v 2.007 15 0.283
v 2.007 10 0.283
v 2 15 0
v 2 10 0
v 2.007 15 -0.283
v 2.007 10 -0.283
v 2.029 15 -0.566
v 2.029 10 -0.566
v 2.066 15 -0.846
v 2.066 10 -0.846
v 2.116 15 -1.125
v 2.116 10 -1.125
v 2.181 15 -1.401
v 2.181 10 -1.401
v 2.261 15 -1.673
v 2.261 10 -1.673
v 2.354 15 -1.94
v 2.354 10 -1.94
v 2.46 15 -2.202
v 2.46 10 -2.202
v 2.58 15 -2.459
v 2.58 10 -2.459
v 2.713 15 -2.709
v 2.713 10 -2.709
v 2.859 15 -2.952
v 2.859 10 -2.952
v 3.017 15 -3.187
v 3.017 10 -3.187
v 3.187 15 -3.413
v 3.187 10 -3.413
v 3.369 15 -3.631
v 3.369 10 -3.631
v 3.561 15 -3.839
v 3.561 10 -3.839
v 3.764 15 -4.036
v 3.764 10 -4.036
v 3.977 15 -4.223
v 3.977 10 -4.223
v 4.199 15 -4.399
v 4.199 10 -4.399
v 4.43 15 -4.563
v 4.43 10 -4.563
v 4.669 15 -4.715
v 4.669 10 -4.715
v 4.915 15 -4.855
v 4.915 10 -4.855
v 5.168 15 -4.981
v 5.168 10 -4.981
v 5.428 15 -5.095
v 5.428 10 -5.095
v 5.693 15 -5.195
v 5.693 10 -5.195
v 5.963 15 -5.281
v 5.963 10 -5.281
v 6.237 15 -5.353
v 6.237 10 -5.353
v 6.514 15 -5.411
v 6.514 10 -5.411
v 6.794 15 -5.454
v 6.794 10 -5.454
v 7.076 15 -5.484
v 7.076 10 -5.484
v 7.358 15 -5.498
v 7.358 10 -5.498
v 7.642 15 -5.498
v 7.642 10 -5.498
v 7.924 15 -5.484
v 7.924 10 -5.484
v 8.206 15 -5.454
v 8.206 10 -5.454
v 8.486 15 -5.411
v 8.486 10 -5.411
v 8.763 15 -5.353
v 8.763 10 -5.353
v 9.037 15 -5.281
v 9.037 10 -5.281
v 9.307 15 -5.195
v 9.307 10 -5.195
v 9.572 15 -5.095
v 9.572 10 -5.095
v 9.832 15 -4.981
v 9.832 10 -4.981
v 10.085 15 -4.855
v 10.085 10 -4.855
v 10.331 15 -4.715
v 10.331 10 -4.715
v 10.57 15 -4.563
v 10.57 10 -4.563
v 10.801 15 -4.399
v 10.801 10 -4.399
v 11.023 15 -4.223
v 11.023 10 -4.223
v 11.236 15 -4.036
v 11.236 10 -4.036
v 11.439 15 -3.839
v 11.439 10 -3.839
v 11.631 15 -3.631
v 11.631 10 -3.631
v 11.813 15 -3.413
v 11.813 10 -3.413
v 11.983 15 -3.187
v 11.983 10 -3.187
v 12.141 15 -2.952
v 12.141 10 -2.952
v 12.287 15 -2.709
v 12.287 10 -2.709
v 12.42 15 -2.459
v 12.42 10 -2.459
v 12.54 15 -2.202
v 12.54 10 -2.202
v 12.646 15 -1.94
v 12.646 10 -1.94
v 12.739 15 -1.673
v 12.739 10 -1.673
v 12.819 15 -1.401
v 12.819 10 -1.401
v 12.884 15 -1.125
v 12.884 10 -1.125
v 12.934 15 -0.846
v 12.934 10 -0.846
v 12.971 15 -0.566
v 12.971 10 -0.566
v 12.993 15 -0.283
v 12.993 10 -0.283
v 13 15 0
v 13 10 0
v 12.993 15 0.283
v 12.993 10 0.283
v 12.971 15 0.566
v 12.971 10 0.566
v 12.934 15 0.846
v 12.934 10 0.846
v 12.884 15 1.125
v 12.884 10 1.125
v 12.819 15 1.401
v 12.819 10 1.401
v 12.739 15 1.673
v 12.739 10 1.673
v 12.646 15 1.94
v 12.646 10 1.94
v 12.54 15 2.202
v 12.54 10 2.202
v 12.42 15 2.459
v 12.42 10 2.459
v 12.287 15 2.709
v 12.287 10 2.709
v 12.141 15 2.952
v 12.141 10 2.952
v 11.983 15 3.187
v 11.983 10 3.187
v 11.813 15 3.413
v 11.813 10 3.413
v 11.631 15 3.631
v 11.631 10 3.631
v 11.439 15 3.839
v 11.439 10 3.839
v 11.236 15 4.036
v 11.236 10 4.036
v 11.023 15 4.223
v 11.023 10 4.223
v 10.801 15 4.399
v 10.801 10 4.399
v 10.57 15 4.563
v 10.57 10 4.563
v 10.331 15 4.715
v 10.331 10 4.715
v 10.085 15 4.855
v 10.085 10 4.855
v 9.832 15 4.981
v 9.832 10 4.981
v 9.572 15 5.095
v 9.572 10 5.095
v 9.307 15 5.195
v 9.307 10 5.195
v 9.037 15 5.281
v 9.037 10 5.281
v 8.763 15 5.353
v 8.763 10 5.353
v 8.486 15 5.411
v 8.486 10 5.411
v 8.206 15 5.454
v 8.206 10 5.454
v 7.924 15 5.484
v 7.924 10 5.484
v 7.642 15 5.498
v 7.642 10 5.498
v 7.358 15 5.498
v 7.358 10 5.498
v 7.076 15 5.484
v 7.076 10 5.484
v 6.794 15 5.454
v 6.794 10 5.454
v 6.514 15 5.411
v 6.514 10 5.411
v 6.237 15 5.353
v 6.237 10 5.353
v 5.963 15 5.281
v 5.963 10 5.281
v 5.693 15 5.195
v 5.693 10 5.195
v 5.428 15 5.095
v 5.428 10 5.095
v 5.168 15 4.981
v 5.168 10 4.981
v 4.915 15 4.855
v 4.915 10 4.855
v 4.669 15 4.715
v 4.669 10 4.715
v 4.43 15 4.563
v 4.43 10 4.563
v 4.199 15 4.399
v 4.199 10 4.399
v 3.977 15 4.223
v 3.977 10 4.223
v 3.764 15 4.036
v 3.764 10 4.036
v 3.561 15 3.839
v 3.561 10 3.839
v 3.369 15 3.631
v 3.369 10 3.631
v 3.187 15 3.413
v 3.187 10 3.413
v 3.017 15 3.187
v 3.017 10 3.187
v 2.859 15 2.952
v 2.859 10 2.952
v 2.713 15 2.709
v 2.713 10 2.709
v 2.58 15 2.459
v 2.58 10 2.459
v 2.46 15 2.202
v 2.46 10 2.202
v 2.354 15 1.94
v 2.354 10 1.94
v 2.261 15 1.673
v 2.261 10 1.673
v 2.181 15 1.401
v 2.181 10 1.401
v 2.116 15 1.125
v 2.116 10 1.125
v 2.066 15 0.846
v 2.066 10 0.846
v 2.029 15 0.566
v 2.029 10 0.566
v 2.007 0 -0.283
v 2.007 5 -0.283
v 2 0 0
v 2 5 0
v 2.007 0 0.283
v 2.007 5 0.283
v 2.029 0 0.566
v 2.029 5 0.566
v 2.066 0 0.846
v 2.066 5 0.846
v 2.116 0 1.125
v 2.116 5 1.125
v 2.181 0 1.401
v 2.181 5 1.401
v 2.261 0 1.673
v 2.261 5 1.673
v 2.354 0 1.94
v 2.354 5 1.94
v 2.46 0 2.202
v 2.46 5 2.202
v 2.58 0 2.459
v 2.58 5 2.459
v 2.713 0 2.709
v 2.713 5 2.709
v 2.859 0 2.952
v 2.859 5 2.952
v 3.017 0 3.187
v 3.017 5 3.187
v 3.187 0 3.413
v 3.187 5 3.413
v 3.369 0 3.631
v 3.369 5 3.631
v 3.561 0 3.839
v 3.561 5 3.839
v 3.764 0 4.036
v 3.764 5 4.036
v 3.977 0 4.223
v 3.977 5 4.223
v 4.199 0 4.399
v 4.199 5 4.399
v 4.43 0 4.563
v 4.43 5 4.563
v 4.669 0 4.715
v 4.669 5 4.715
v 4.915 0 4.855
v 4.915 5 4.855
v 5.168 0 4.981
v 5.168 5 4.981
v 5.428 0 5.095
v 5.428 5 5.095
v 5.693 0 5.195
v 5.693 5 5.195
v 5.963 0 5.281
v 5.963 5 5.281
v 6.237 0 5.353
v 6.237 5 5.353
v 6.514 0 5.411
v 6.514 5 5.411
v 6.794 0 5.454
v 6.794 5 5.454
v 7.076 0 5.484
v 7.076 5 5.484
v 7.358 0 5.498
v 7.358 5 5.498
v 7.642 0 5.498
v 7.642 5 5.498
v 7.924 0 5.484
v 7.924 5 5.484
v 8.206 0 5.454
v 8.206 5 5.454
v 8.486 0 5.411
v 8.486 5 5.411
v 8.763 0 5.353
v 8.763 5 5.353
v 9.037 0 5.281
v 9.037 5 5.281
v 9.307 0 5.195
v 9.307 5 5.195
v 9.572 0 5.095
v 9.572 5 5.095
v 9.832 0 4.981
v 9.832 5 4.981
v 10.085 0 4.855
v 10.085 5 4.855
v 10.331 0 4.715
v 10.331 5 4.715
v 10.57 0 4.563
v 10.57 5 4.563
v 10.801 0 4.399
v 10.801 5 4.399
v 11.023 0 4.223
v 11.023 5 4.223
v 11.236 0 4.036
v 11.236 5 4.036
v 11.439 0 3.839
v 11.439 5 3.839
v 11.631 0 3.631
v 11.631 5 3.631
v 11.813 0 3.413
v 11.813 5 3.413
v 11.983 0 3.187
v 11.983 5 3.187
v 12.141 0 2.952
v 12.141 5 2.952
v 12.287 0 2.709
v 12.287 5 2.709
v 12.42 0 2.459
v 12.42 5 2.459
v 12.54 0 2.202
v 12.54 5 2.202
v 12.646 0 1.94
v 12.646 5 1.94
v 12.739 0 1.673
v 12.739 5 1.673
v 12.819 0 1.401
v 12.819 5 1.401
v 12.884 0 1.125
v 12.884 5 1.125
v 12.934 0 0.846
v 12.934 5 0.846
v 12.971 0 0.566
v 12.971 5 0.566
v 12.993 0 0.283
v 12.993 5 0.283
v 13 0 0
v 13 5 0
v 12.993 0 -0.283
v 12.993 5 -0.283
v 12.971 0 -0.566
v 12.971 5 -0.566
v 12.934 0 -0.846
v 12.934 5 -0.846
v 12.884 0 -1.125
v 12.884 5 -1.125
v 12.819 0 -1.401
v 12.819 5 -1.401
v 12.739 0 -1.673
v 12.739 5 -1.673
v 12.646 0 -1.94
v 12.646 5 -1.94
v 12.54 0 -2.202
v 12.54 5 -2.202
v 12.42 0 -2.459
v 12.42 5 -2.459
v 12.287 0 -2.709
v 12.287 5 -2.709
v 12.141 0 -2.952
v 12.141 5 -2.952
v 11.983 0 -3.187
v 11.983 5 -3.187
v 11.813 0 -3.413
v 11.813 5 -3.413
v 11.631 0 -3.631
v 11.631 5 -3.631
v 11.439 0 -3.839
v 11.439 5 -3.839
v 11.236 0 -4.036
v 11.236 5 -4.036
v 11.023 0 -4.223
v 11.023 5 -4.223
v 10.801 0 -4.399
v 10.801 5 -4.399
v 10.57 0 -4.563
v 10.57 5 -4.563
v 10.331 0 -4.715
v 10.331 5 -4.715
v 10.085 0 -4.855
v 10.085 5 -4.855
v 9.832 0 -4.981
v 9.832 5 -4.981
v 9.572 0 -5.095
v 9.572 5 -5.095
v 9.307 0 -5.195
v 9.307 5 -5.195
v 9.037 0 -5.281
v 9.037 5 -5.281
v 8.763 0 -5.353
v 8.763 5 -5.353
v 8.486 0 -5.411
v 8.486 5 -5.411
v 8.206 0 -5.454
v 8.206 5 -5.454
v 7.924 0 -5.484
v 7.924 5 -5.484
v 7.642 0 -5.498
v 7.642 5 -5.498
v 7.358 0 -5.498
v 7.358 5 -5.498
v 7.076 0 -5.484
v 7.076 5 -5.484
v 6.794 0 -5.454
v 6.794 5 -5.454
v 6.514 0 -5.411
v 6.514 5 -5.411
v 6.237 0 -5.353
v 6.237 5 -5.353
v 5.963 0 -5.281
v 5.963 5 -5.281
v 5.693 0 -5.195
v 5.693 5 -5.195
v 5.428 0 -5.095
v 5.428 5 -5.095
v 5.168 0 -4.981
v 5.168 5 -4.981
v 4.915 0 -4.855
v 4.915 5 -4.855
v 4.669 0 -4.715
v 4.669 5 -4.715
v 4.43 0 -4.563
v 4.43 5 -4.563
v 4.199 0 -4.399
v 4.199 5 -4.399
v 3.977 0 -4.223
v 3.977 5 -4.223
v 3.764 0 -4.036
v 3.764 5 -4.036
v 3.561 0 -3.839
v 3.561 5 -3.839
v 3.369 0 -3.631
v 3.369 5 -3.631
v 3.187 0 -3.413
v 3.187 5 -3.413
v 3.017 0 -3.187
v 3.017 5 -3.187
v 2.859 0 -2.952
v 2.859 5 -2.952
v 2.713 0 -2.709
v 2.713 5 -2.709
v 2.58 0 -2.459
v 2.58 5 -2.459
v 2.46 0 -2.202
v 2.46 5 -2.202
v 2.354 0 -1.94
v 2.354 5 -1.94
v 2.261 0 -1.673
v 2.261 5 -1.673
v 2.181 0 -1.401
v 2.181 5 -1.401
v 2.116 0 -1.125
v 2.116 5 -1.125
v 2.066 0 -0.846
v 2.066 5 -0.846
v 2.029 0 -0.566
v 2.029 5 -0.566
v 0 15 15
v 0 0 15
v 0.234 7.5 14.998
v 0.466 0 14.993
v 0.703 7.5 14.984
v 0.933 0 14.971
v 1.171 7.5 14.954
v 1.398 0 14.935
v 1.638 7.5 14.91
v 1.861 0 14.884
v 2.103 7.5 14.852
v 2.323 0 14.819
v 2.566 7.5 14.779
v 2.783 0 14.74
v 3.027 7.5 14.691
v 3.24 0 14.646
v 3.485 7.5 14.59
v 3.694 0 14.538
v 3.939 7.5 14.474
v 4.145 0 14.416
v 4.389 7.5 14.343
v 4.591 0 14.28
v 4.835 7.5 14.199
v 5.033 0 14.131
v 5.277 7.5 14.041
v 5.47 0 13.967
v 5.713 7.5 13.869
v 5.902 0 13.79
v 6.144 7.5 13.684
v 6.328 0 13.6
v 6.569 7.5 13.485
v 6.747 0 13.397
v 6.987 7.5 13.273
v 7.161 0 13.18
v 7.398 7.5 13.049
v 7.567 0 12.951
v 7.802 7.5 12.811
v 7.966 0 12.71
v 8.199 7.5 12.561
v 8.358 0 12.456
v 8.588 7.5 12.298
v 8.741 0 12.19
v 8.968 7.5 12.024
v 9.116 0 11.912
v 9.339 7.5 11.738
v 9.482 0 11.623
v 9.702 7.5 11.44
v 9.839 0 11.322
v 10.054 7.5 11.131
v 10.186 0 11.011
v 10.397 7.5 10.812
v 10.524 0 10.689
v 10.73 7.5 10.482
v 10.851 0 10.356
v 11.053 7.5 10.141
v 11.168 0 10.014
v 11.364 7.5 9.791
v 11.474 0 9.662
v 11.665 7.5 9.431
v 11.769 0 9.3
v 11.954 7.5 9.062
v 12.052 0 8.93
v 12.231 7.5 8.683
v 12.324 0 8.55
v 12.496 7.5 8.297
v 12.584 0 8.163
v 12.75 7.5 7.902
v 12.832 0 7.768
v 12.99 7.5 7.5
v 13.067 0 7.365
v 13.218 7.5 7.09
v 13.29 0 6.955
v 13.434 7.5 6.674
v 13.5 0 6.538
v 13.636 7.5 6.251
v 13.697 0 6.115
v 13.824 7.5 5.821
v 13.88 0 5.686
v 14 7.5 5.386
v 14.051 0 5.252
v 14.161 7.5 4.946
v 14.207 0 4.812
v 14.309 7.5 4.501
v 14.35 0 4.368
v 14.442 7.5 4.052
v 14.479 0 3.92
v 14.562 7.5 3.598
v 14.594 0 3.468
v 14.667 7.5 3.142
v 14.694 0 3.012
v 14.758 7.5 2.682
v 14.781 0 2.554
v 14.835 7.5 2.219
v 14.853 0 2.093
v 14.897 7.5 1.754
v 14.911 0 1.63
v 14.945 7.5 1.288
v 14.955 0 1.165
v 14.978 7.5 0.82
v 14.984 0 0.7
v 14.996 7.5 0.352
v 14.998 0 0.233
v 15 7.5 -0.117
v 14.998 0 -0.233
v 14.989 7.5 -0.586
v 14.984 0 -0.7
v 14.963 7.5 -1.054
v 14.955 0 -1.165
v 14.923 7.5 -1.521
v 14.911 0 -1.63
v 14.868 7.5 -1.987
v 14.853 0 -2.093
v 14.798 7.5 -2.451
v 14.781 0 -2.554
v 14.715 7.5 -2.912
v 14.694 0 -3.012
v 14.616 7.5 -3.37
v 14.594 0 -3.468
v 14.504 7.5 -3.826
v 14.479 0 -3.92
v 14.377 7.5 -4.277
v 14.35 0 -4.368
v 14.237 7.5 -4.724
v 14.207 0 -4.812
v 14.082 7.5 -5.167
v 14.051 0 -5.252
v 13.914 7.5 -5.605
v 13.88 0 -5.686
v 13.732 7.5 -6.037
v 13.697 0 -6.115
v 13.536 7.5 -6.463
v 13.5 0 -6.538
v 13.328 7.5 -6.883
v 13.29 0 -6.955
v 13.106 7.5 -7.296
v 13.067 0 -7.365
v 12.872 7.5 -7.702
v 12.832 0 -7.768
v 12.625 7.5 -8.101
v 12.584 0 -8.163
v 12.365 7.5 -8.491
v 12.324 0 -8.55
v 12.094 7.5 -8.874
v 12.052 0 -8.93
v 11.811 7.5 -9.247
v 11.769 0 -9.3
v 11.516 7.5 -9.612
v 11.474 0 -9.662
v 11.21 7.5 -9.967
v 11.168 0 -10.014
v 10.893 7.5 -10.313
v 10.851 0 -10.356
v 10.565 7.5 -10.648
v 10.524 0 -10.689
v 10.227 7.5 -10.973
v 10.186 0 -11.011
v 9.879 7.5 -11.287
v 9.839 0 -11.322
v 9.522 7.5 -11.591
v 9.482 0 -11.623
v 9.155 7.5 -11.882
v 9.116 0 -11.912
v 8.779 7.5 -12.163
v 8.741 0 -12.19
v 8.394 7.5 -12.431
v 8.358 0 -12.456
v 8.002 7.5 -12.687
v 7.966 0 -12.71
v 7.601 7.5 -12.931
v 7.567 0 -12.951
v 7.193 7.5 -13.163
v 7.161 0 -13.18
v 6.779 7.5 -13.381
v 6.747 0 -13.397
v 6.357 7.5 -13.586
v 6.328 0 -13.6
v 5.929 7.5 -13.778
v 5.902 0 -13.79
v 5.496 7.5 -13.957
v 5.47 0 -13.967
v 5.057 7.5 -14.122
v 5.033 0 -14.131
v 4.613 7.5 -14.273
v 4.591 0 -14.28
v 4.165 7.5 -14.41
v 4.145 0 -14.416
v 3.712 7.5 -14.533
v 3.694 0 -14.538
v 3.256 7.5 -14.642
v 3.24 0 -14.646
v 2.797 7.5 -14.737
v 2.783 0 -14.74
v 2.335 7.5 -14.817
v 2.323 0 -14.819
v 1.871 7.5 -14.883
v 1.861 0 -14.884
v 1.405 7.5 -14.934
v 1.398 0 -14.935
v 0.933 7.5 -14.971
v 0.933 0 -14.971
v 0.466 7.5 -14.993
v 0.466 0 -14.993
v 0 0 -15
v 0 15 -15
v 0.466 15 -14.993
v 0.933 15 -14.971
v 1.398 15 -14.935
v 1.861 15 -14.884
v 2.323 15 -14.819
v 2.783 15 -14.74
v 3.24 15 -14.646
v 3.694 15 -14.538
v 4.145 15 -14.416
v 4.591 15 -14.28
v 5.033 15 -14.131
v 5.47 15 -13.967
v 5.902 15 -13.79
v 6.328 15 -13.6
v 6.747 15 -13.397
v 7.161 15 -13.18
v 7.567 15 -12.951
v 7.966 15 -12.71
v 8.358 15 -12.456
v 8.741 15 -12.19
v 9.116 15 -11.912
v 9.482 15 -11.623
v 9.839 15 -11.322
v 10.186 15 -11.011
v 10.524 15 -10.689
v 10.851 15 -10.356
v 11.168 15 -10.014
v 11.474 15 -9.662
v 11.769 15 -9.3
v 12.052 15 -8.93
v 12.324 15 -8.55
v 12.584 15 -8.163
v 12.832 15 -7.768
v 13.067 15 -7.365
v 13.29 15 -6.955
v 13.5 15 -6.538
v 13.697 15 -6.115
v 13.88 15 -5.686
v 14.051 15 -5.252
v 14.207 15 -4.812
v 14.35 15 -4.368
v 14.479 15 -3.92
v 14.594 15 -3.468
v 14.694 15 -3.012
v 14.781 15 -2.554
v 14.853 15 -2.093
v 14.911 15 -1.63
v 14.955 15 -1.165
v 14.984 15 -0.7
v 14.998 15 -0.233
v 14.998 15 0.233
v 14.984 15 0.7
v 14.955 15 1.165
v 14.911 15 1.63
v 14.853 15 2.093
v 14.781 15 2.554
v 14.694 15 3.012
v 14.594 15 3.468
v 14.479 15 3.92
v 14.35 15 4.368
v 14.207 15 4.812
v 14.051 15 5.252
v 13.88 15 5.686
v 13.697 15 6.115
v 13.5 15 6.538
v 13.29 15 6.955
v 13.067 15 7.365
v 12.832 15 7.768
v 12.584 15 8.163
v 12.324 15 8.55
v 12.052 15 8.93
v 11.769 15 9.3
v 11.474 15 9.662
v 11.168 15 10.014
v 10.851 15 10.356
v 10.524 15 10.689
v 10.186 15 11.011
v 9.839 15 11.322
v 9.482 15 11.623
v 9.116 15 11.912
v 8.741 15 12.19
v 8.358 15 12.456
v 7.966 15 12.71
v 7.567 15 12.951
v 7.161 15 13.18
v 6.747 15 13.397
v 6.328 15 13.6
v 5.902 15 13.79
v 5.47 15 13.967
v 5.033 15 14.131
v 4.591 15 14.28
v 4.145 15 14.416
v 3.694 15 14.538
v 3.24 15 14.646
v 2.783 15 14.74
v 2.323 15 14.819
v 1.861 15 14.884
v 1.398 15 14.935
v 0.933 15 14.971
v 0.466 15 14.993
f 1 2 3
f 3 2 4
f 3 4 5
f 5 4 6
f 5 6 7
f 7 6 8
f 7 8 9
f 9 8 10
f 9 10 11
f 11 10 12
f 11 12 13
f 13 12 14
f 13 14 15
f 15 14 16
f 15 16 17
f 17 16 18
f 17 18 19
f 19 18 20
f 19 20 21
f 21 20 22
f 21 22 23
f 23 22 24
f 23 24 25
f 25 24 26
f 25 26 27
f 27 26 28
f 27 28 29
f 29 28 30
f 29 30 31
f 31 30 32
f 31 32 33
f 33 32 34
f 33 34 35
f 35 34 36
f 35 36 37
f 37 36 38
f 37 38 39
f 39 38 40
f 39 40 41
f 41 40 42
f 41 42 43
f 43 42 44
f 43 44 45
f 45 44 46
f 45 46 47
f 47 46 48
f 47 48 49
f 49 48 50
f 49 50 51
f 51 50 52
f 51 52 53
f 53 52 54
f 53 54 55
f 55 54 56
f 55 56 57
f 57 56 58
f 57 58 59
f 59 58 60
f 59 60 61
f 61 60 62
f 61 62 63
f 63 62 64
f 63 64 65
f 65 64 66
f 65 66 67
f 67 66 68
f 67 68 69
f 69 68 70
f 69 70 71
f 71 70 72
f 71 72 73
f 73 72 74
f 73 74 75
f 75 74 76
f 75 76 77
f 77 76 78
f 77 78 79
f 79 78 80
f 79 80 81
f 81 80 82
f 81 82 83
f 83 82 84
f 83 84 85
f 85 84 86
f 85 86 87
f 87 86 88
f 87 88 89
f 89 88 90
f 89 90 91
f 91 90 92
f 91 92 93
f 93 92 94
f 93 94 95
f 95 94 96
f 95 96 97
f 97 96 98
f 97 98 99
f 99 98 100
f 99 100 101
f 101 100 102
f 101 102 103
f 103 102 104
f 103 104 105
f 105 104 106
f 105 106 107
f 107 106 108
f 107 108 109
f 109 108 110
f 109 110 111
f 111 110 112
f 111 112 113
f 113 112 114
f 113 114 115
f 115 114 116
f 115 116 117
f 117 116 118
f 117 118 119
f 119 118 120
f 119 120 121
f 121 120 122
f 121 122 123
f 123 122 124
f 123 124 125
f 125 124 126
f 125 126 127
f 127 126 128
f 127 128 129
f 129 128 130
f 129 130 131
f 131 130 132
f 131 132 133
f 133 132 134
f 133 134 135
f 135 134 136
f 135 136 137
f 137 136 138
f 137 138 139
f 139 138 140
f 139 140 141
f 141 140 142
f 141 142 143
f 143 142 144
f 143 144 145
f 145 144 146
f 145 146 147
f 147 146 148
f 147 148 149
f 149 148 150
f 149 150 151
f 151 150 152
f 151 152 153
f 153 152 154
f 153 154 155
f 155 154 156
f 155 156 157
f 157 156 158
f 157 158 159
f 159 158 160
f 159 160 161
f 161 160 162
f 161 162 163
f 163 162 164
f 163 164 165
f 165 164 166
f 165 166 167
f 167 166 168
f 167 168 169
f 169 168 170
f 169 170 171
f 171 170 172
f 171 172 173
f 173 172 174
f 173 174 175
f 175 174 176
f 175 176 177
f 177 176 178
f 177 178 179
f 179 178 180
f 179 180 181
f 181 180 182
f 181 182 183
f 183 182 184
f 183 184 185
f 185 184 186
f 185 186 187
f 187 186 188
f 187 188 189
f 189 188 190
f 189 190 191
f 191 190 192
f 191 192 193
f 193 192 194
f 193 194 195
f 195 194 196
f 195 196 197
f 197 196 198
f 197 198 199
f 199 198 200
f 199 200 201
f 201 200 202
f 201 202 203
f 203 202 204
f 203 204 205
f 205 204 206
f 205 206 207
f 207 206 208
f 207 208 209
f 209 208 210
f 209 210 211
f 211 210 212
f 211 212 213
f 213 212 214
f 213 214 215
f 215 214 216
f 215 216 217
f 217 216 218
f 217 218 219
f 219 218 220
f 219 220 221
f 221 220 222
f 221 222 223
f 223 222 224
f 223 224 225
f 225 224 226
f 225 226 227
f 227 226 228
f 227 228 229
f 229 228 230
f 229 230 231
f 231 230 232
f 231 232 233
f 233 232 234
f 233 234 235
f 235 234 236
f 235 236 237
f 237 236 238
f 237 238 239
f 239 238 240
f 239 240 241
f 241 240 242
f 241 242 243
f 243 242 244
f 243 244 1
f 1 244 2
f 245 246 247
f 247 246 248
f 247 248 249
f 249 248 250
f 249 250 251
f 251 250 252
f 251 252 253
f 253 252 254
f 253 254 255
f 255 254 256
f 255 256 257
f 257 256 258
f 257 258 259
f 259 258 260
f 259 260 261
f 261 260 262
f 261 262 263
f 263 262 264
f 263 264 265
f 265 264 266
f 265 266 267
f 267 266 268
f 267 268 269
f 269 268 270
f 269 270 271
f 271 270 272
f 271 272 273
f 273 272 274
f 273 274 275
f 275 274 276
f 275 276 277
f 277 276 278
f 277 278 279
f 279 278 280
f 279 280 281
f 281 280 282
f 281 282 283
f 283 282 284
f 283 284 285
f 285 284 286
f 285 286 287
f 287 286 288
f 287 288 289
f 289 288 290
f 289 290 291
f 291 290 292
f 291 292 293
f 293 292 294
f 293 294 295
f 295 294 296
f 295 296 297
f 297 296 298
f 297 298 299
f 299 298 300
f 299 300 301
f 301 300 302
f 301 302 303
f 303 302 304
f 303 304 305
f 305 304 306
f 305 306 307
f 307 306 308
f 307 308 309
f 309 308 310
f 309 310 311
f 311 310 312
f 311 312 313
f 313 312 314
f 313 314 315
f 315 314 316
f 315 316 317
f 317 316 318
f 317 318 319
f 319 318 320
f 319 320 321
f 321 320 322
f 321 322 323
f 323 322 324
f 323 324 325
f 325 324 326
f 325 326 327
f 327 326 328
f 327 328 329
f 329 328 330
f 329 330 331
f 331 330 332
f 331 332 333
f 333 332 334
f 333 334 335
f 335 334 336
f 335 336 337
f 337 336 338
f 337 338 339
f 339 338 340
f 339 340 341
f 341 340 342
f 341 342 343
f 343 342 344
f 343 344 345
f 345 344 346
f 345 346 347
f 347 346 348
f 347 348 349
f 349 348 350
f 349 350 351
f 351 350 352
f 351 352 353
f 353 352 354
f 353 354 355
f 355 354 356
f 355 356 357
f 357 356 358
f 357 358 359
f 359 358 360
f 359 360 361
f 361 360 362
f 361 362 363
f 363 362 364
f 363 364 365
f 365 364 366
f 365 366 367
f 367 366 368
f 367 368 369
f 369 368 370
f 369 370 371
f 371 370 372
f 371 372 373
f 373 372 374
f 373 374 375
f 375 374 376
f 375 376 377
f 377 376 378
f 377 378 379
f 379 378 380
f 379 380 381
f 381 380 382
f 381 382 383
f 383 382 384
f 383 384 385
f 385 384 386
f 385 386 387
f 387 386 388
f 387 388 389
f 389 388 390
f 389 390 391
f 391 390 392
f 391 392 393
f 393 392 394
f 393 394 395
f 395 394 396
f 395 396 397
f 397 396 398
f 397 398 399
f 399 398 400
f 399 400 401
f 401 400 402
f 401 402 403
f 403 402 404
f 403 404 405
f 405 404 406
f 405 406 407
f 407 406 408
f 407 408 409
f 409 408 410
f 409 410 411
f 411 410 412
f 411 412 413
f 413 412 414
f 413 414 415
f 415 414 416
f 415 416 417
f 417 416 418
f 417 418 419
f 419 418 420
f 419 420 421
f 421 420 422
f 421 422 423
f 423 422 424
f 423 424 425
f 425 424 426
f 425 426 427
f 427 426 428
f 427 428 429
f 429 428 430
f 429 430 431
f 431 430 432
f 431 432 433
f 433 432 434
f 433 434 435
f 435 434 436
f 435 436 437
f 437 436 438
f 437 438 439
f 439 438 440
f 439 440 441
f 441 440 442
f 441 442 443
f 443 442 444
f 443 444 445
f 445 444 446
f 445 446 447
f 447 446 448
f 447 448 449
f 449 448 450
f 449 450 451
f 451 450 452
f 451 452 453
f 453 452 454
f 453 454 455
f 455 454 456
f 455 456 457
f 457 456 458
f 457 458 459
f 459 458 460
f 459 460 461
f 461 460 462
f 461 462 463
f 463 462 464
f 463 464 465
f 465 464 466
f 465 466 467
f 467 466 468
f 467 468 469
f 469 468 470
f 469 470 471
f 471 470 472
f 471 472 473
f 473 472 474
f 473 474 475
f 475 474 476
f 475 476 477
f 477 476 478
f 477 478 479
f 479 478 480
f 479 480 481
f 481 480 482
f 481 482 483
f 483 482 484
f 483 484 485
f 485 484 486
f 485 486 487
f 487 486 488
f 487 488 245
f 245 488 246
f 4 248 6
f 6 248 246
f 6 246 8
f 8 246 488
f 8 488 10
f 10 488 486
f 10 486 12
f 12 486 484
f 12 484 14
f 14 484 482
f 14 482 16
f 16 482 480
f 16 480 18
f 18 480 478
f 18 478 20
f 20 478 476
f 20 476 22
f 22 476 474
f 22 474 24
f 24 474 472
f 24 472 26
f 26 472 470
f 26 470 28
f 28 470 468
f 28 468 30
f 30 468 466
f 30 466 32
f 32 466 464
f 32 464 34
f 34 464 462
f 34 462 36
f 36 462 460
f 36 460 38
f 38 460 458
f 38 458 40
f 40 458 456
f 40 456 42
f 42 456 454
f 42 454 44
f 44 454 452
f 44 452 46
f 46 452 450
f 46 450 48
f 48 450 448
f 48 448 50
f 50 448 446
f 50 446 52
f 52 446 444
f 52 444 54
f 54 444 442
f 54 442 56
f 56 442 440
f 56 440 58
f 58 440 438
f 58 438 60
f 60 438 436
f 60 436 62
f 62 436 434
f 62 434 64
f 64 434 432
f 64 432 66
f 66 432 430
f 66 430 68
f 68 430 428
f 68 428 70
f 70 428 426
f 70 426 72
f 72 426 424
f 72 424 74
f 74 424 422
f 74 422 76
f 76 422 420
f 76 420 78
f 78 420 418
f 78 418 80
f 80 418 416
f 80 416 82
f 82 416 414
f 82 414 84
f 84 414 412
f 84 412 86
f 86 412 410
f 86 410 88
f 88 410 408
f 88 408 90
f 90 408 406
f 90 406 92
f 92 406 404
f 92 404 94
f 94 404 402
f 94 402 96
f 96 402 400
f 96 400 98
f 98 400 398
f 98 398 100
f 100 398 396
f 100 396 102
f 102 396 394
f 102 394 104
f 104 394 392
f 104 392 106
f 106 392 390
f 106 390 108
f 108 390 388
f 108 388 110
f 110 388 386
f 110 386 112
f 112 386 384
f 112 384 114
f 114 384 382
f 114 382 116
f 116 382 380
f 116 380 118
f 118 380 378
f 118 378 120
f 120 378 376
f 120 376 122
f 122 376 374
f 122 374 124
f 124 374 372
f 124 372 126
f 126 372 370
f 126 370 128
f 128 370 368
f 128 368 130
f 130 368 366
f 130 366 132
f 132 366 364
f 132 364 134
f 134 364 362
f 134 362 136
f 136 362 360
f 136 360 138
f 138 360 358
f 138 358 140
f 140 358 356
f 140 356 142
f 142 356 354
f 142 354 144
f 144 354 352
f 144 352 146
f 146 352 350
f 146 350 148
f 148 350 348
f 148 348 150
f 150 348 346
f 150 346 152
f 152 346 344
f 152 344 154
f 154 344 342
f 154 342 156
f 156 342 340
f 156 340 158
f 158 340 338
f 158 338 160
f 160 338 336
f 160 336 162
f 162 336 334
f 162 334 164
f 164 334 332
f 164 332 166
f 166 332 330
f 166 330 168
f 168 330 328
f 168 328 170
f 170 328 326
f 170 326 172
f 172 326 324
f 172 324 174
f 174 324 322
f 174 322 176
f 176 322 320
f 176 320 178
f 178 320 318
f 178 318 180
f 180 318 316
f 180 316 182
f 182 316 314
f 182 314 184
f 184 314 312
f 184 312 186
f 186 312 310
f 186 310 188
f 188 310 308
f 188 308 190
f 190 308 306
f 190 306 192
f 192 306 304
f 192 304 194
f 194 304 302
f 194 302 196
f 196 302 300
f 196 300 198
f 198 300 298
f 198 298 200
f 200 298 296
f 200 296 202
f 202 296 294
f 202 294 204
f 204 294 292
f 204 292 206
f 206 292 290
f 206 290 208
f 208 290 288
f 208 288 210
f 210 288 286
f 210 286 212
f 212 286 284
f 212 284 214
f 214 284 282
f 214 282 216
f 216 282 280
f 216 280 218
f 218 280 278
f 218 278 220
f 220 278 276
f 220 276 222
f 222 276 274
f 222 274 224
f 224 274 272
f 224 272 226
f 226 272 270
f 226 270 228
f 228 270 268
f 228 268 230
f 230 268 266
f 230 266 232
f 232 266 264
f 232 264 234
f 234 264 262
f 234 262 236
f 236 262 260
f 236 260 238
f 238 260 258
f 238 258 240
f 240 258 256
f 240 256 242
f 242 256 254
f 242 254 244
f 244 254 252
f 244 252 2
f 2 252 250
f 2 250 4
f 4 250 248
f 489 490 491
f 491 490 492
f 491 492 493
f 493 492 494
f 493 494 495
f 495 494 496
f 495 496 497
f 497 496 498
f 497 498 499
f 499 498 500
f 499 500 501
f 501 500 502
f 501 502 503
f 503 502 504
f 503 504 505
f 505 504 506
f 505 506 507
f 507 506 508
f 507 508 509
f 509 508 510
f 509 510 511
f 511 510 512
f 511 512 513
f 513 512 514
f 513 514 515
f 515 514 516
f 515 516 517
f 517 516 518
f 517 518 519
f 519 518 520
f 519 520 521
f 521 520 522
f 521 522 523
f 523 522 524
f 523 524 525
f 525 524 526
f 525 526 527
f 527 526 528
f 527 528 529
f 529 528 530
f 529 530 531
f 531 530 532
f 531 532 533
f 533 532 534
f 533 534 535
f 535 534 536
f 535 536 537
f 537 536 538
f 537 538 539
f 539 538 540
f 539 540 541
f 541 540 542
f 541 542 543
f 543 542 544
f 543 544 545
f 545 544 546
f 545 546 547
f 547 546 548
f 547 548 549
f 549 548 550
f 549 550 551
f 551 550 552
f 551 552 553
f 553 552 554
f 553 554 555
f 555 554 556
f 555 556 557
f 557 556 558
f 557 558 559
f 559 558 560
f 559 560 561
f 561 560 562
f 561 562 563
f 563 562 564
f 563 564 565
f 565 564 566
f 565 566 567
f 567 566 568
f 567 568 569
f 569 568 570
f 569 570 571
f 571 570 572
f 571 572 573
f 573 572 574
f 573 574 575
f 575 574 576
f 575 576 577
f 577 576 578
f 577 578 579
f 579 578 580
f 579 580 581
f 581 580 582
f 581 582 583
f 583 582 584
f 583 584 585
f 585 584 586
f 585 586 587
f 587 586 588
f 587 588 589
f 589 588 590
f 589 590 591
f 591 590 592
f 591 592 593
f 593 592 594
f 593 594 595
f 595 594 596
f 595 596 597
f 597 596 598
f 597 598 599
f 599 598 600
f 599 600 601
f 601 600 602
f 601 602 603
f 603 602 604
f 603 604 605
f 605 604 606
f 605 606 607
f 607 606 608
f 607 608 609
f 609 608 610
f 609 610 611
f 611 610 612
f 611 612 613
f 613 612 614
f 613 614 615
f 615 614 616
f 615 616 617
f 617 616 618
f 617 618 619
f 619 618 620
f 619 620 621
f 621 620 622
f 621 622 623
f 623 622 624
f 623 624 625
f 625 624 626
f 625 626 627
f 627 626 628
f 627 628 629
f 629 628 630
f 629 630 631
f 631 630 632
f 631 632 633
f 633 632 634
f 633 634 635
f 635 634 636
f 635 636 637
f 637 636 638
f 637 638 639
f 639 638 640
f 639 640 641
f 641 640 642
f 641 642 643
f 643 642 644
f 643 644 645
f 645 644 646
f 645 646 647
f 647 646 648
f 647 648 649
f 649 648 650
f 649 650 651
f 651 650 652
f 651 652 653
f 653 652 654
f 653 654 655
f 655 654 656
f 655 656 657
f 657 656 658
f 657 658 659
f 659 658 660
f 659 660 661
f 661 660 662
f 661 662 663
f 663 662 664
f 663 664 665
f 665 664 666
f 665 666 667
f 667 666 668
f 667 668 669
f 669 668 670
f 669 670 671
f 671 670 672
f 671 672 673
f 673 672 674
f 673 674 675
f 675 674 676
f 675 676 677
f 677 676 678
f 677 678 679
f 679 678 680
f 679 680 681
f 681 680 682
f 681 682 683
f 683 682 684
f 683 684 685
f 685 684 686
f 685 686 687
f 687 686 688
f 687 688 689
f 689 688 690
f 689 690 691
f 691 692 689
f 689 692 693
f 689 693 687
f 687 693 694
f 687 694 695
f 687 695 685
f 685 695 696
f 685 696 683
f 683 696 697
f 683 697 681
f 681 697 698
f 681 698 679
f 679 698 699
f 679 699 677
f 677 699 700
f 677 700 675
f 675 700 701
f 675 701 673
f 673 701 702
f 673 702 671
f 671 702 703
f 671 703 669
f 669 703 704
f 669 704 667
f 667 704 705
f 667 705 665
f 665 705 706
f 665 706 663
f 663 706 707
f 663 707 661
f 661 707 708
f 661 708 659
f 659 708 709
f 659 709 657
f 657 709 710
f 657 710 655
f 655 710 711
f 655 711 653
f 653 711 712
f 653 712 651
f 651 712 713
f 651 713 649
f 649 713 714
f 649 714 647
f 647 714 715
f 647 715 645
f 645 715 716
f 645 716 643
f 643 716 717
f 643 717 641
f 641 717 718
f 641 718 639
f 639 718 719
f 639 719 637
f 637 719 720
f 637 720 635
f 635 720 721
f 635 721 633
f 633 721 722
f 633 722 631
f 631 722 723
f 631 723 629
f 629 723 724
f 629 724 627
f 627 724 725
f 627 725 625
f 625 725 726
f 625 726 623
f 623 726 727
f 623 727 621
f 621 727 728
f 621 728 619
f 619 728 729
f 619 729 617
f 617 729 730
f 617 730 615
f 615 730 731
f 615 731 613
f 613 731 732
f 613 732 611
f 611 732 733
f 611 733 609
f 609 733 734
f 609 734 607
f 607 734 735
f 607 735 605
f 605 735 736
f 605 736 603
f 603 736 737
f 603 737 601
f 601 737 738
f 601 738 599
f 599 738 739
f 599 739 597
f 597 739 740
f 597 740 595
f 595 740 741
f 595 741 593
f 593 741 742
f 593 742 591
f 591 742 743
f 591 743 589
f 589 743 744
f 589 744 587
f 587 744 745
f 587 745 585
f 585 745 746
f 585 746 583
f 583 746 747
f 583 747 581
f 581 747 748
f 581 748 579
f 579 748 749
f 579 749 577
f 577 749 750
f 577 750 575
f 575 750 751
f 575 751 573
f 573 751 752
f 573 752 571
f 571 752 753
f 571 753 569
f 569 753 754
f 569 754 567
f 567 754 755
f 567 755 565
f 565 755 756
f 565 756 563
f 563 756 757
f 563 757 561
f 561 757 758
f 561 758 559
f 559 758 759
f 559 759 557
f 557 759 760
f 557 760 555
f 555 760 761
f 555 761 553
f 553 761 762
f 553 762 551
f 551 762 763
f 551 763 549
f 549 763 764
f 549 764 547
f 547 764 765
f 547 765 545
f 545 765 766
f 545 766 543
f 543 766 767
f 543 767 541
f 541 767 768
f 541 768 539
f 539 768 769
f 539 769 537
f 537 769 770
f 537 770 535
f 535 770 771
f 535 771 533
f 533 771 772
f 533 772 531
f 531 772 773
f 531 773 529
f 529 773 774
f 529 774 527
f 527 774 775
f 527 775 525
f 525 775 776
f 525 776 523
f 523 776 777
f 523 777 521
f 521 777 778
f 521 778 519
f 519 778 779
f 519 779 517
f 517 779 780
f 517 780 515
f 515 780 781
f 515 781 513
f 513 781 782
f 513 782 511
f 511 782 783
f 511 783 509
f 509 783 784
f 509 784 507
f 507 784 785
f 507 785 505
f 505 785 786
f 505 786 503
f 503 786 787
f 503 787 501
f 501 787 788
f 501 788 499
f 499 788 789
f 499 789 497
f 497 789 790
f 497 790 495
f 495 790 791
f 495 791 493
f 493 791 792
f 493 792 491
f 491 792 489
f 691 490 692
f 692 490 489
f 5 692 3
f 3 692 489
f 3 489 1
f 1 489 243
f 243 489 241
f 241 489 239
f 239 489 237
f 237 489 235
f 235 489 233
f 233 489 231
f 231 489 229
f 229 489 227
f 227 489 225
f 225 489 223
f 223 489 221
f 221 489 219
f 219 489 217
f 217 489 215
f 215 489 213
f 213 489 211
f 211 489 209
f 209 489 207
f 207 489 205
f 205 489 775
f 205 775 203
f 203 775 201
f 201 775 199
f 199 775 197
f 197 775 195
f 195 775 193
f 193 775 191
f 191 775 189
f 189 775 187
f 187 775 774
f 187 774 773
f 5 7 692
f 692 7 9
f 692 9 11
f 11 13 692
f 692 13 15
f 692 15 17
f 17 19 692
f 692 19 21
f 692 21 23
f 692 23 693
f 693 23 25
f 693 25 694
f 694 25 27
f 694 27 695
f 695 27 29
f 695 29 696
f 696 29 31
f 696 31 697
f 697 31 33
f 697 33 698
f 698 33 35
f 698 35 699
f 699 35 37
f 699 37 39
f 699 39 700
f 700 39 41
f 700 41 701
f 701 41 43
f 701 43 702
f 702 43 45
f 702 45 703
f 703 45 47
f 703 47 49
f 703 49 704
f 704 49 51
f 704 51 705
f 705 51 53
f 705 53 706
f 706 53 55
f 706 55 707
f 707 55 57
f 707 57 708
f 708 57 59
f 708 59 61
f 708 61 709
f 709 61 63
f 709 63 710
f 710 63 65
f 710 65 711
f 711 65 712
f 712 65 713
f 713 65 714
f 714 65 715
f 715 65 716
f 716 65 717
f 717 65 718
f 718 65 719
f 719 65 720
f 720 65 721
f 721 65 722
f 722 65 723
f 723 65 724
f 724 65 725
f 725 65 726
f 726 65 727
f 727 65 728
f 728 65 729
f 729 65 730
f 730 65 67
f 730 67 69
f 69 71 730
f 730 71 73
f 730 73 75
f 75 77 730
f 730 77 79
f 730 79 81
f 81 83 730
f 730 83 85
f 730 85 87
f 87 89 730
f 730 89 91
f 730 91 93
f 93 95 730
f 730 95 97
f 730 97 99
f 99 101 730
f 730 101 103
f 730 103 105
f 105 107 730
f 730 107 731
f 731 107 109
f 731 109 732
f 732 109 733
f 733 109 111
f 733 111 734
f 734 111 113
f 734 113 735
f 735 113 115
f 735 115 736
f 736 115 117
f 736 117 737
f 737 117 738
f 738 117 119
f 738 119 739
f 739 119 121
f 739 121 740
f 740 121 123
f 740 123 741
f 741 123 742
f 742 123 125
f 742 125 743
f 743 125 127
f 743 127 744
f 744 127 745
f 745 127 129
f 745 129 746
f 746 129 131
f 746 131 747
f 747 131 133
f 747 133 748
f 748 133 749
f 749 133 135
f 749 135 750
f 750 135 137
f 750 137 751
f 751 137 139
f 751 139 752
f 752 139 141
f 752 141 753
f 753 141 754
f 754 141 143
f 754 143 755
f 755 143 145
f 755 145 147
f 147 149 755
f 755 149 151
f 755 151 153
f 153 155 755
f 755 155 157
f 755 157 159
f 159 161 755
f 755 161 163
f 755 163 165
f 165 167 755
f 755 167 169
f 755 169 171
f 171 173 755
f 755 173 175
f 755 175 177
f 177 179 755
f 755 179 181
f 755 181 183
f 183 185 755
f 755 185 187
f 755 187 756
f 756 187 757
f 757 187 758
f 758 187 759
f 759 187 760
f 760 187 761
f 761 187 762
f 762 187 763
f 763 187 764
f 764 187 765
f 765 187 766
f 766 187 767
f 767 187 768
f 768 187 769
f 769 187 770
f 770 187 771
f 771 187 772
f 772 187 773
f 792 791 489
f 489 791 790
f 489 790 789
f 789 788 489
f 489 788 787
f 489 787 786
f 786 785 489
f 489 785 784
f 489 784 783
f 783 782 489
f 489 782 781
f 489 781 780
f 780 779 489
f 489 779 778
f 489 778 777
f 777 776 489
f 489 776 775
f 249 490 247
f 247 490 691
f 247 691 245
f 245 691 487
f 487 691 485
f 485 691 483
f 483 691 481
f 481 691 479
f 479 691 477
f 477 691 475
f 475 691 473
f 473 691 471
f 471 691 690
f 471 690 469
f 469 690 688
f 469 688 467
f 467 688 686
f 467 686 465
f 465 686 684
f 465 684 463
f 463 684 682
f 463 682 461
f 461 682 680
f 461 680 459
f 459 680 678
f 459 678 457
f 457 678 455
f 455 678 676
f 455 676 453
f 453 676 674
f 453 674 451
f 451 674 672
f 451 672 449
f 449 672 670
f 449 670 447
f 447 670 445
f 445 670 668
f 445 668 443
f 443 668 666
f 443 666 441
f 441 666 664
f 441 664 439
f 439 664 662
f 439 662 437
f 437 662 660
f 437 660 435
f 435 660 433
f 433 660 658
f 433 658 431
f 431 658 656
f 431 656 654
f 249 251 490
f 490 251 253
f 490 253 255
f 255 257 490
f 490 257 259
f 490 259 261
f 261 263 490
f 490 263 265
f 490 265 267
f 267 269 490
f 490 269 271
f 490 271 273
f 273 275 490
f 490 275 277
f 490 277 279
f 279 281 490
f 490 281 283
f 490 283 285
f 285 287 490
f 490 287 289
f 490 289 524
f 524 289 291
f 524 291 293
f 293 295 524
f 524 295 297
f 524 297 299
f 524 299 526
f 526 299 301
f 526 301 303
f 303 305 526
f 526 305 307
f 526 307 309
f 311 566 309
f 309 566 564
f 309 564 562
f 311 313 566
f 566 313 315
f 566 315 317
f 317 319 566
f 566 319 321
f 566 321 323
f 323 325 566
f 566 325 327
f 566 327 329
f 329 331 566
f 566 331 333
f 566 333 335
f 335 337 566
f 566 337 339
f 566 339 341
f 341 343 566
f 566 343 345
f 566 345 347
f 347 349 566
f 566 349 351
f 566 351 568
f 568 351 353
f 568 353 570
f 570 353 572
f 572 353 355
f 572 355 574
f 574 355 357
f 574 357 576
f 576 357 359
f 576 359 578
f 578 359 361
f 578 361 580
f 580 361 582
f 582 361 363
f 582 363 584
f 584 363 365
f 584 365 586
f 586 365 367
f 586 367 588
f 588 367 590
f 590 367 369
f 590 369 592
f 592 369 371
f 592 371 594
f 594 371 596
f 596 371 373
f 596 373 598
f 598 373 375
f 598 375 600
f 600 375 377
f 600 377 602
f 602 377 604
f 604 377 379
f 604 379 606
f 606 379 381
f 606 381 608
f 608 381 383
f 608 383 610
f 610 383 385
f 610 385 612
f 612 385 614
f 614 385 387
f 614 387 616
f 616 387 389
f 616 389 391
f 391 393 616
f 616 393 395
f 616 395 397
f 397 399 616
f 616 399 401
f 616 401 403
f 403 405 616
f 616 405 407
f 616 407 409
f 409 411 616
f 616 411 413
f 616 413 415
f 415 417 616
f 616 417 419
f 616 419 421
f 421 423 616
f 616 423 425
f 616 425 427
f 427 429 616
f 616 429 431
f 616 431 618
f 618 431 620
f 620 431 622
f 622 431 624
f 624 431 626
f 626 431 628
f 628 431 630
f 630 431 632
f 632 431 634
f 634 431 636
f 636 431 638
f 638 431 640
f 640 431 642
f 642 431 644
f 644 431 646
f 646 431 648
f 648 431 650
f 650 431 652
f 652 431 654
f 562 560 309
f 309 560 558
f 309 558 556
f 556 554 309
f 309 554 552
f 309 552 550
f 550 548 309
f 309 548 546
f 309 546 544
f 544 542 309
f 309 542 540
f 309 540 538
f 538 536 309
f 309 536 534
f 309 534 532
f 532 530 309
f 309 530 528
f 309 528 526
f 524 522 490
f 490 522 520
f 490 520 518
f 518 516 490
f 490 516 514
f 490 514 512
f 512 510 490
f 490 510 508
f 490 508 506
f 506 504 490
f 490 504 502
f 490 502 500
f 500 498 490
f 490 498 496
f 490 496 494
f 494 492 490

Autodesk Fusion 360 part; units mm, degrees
sketch "Sketch1" plane through (0, 0, 0) normal (0, 1, 0) x (1, 0, 0)
  arc A0 (0, -15) -> (0, 15) centre (0, 0) ccw
  line L0 (0, 0) -> (0, -15) construction
  line L1 (0, 0) -> (0, 15) construction
  line L2 (0, 15) -> (0, -15)
  circle A1 centre (7.5, 0) radius 5.5
  dimension "d1" = 180
  dimension "d2" = 11
  dimension "d10" = 7.5
extrude "Extrude1" add sketch "Sketch1" along normal blind 15
extrude "Extrude2" add sketch "Sketch1" along normal blind 25 contours A1
extrude "Extrude3" cut 1 faces at (7.6099, 25, -1.4661) along direction (0, -1, 0) blind 30
